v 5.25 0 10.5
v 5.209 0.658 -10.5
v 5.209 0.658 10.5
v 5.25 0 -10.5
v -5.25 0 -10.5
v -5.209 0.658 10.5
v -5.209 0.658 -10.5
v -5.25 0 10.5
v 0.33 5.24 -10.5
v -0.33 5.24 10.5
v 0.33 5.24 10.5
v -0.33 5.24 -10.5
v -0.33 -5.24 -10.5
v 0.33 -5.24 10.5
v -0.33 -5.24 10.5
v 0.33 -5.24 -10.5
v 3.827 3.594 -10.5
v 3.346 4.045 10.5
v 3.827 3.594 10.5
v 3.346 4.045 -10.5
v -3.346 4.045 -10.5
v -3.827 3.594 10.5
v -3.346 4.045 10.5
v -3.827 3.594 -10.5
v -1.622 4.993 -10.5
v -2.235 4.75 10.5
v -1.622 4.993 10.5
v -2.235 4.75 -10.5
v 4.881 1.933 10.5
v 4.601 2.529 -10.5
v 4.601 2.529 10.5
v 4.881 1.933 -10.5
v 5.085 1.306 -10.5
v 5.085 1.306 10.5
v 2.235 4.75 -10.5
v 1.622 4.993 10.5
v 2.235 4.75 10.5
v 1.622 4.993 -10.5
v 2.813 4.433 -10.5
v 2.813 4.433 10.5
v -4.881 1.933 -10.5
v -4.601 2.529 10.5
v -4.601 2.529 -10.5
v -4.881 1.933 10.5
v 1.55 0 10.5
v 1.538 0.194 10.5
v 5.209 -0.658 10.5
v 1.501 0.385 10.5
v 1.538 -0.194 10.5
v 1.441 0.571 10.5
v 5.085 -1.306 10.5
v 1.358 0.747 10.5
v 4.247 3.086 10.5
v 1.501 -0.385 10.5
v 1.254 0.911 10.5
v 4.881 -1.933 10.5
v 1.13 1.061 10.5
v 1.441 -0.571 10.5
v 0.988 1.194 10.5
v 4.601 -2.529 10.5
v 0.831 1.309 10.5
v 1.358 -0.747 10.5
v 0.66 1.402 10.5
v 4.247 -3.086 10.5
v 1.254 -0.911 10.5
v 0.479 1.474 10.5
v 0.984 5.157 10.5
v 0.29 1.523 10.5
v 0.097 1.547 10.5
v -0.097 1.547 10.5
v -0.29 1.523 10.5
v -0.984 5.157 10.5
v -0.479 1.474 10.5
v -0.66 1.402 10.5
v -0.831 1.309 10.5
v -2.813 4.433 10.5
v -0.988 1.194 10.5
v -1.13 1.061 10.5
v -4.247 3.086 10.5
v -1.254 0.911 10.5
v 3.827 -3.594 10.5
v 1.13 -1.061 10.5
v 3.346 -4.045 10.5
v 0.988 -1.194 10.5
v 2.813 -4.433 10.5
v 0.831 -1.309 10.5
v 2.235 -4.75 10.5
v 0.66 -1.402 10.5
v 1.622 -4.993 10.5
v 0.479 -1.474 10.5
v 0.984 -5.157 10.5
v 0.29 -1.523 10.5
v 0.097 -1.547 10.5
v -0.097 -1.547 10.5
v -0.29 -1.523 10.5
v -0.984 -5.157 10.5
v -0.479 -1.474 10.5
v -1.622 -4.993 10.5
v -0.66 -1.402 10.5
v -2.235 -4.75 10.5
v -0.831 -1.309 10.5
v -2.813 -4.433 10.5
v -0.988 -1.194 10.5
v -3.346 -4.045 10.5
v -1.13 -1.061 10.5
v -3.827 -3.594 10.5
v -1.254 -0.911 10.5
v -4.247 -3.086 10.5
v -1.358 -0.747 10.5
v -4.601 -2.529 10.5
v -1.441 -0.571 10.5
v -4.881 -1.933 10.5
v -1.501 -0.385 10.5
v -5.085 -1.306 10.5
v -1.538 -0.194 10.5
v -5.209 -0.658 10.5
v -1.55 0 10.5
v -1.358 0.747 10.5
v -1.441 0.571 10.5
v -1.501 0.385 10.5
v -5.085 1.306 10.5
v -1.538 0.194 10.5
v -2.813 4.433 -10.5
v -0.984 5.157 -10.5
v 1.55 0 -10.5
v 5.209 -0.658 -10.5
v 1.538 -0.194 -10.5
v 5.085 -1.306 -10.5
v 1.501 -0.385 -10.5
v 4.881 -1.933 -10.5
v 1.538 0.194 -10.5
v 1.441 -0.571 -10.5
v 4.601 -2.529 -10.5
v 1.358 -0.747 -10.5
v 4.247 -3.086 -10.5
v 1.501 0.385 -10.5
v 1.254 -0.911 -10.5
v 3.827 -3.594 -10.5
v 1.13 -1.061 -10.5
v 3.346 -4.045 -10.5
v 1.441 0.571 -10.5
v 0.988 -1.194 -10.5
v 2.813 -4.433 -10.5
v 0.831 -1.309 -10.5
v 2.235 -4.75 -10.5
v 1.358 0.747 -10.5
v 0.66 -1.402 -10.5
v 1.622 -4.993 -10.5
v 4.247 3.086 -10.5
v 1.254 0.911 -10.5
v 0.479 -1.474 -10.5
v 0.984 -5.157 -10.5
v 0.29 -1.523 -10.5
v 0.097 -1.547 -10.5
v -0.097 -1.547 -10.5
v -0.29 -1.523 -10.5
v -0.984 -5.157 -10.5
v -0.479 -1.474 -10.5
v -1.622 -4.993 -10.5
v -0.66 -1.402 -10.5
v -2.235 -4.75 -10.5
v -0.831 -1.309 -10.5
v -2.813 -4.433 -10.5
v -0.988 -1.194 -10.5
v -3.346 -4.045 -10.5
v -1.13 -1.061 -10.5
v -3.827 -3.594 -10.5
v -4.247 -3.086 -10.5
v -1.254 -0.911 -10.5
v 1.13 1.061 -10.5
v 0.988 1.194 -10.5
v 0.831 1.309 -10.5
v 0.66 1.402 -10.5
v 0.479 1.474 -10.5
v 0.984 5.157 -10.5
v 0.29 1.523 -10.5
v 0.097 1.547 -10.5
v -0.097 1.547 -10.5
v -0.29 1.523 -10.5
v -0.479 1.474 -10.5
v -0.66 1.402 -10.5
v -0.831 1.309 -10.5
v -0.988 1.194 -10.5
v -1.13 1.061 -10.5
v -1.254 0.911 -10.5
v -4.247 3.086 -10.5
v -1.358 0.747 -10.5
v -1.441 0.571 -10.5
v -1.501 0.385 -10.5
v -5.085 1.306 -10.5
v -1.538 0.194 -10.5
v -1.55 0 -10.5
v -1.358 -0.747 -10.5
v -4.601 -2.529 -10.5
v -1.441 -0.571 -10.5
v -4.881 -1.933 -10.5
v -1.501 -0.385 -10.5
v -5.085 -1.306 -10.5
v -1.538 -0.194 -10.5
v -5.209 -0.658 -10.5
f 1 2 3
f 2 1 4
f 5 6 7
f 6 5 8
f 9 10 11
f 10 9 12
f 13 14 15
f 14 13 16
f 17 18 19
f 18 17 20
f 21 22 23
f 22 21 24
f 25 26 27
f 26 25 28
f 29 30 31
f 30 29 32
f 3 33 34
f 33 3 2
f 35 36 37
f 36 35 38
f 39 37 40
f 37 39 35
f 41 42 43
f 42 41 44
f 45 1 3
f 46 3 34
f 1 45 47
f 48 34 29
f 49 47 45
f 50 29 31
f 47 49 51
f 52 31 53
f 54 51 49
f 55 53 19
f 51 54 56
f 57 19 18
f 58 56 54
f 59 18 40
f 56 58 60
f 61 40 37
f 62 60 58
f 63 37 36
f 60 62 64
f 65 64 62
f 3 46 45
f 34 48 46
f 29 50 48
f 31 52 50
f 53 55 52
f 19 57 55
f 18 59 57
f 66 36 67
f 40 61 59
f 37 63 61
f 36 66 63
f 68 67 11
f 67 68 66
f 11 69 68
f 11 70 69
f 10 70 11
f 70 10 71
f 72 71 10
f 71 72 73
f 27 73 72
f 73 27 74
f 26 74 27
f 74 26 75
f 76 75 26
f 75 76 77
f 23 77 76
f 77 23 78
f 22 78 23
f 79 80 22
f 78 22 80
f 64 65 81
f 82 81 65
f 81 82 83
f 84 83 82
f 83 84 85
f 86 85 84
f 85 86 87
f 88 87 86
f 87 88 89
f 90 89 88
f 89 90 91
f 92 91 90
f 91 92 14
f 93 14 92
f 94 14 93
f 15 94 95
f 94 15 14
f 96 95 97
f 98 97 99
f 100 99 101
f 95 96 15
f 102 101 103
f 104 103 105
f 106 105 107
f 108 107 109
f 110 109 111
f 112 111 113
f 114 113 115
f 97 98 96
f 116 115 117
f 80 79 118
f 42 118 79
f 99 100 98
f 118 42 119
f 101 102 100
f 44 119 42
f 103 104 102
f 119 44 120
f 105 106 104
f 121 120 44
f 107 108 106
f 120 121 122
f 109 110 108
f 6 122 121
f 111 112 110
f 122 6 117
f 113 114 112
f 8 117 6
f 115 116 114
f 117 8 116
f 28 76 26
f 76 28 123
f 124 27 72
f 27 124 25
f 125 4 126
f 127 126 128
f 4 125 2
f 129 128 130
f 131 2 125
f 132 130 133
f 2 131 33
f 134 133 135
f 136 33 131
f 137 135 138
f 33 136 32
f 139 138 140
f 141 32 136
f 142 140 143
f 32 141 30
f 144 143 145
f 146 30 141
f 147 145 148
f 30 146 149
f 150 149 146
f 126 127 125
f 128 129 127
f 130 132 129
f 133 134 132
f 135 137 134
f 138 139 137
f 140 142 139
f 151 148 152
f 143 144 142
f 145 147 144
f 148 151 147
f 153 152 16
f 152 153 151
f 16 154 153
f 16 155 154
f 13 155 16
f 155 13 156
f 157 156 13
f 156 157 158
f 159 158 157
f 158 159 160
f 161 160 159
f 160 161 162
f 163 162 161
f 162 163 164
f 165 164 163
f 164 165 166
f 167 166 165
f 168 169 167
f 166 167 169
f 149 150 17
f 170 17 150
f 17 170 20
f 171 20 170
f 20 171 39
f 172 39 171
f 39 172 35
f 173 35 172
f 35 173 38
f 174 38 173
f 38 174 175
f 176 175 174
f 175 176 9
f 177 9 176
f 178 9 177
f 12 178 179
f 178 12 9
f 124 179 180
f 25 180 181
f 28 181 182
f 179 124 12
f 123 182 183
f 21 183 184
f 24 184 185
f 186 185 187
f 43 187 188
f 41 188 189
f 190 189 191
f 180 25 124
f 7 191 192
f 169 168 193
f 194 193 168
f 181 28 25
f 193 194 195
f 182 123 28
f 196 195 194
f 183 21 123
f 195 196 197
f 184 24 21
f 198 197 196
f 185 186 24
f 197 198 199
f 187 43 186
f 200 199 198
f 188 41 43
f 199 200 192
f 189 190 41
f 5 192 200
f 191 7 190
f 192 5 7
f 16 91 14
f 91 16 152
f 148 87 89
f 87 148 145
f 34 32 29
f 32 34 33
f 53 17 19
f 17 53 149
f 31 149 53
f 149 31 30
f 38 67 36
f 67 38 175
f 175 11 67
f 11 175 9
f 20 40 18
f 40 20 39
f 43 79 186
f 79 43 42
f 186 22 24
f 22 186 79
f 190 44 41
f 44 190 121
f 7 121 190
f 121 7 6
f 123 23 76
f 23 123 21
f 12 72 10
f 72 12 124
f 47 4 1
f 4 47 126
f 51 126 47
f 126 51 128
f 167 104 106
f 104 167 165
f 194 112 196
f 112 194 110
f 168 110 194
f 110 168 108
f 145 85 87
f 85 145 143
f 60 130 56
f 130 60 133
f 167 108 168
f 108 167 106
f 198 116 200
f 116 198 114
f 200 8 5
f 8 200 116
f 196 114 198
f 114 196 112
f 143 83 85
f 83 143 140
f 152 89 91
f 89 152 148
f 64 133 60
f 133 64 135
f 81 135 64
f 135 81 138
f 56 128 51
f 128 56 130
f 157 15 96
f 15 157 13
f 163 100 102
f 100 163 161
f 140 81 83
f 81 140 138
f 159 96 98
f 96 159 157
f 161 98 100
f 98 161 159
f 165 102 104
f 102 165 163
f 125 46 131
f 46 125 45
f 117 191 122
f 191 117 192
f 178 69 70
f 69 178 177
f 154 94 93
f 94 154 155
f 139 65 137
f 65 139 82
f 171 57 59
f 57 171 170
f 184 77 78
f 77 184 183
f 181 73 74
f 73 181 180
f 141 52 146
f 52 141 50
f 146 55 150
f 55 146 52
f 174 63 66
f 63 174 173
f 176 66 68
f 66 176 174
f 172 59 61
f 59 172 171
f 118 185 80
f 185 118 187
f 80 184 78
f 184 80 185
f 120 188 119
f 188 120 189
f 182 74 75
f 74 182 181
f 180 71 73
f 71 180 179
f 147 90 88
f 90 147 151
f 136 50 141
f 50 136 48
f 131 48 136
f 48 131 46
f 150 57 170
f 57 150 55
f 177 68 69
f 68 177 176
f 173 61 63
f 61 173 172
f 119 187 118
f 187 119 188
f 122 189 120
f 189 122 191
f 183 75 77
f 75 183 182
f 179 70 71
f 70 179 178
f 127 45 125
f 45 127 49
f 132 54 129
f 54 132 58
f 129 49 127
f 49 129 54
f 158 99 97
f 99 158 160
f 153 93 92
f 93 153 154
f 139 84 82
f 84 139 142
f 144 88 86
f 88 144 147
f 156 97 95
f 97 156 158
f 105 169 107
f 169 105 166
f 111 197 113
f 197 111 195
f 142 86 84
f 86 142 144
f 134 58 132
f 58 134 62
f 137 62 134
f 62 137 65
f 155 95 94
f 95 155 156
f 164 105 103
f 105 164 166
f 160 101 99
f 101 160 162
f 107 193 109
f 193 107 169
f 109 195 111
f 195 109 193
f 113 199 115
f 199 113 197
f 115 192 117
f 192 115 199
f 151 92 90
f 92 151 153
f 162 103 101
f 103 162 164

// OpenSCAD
$fn = 50;


difference() {
	union() {
		translate(v = [0, 0, -10.5000000000]) {
			cylinder(h = 21, r = 5.2500000000);
		}
	}
	union() {
		translate(v = [0, 0, -100.0000000000]) {
			cylinder(h = 200, r = 1.5500000000);
		}
	}
}
